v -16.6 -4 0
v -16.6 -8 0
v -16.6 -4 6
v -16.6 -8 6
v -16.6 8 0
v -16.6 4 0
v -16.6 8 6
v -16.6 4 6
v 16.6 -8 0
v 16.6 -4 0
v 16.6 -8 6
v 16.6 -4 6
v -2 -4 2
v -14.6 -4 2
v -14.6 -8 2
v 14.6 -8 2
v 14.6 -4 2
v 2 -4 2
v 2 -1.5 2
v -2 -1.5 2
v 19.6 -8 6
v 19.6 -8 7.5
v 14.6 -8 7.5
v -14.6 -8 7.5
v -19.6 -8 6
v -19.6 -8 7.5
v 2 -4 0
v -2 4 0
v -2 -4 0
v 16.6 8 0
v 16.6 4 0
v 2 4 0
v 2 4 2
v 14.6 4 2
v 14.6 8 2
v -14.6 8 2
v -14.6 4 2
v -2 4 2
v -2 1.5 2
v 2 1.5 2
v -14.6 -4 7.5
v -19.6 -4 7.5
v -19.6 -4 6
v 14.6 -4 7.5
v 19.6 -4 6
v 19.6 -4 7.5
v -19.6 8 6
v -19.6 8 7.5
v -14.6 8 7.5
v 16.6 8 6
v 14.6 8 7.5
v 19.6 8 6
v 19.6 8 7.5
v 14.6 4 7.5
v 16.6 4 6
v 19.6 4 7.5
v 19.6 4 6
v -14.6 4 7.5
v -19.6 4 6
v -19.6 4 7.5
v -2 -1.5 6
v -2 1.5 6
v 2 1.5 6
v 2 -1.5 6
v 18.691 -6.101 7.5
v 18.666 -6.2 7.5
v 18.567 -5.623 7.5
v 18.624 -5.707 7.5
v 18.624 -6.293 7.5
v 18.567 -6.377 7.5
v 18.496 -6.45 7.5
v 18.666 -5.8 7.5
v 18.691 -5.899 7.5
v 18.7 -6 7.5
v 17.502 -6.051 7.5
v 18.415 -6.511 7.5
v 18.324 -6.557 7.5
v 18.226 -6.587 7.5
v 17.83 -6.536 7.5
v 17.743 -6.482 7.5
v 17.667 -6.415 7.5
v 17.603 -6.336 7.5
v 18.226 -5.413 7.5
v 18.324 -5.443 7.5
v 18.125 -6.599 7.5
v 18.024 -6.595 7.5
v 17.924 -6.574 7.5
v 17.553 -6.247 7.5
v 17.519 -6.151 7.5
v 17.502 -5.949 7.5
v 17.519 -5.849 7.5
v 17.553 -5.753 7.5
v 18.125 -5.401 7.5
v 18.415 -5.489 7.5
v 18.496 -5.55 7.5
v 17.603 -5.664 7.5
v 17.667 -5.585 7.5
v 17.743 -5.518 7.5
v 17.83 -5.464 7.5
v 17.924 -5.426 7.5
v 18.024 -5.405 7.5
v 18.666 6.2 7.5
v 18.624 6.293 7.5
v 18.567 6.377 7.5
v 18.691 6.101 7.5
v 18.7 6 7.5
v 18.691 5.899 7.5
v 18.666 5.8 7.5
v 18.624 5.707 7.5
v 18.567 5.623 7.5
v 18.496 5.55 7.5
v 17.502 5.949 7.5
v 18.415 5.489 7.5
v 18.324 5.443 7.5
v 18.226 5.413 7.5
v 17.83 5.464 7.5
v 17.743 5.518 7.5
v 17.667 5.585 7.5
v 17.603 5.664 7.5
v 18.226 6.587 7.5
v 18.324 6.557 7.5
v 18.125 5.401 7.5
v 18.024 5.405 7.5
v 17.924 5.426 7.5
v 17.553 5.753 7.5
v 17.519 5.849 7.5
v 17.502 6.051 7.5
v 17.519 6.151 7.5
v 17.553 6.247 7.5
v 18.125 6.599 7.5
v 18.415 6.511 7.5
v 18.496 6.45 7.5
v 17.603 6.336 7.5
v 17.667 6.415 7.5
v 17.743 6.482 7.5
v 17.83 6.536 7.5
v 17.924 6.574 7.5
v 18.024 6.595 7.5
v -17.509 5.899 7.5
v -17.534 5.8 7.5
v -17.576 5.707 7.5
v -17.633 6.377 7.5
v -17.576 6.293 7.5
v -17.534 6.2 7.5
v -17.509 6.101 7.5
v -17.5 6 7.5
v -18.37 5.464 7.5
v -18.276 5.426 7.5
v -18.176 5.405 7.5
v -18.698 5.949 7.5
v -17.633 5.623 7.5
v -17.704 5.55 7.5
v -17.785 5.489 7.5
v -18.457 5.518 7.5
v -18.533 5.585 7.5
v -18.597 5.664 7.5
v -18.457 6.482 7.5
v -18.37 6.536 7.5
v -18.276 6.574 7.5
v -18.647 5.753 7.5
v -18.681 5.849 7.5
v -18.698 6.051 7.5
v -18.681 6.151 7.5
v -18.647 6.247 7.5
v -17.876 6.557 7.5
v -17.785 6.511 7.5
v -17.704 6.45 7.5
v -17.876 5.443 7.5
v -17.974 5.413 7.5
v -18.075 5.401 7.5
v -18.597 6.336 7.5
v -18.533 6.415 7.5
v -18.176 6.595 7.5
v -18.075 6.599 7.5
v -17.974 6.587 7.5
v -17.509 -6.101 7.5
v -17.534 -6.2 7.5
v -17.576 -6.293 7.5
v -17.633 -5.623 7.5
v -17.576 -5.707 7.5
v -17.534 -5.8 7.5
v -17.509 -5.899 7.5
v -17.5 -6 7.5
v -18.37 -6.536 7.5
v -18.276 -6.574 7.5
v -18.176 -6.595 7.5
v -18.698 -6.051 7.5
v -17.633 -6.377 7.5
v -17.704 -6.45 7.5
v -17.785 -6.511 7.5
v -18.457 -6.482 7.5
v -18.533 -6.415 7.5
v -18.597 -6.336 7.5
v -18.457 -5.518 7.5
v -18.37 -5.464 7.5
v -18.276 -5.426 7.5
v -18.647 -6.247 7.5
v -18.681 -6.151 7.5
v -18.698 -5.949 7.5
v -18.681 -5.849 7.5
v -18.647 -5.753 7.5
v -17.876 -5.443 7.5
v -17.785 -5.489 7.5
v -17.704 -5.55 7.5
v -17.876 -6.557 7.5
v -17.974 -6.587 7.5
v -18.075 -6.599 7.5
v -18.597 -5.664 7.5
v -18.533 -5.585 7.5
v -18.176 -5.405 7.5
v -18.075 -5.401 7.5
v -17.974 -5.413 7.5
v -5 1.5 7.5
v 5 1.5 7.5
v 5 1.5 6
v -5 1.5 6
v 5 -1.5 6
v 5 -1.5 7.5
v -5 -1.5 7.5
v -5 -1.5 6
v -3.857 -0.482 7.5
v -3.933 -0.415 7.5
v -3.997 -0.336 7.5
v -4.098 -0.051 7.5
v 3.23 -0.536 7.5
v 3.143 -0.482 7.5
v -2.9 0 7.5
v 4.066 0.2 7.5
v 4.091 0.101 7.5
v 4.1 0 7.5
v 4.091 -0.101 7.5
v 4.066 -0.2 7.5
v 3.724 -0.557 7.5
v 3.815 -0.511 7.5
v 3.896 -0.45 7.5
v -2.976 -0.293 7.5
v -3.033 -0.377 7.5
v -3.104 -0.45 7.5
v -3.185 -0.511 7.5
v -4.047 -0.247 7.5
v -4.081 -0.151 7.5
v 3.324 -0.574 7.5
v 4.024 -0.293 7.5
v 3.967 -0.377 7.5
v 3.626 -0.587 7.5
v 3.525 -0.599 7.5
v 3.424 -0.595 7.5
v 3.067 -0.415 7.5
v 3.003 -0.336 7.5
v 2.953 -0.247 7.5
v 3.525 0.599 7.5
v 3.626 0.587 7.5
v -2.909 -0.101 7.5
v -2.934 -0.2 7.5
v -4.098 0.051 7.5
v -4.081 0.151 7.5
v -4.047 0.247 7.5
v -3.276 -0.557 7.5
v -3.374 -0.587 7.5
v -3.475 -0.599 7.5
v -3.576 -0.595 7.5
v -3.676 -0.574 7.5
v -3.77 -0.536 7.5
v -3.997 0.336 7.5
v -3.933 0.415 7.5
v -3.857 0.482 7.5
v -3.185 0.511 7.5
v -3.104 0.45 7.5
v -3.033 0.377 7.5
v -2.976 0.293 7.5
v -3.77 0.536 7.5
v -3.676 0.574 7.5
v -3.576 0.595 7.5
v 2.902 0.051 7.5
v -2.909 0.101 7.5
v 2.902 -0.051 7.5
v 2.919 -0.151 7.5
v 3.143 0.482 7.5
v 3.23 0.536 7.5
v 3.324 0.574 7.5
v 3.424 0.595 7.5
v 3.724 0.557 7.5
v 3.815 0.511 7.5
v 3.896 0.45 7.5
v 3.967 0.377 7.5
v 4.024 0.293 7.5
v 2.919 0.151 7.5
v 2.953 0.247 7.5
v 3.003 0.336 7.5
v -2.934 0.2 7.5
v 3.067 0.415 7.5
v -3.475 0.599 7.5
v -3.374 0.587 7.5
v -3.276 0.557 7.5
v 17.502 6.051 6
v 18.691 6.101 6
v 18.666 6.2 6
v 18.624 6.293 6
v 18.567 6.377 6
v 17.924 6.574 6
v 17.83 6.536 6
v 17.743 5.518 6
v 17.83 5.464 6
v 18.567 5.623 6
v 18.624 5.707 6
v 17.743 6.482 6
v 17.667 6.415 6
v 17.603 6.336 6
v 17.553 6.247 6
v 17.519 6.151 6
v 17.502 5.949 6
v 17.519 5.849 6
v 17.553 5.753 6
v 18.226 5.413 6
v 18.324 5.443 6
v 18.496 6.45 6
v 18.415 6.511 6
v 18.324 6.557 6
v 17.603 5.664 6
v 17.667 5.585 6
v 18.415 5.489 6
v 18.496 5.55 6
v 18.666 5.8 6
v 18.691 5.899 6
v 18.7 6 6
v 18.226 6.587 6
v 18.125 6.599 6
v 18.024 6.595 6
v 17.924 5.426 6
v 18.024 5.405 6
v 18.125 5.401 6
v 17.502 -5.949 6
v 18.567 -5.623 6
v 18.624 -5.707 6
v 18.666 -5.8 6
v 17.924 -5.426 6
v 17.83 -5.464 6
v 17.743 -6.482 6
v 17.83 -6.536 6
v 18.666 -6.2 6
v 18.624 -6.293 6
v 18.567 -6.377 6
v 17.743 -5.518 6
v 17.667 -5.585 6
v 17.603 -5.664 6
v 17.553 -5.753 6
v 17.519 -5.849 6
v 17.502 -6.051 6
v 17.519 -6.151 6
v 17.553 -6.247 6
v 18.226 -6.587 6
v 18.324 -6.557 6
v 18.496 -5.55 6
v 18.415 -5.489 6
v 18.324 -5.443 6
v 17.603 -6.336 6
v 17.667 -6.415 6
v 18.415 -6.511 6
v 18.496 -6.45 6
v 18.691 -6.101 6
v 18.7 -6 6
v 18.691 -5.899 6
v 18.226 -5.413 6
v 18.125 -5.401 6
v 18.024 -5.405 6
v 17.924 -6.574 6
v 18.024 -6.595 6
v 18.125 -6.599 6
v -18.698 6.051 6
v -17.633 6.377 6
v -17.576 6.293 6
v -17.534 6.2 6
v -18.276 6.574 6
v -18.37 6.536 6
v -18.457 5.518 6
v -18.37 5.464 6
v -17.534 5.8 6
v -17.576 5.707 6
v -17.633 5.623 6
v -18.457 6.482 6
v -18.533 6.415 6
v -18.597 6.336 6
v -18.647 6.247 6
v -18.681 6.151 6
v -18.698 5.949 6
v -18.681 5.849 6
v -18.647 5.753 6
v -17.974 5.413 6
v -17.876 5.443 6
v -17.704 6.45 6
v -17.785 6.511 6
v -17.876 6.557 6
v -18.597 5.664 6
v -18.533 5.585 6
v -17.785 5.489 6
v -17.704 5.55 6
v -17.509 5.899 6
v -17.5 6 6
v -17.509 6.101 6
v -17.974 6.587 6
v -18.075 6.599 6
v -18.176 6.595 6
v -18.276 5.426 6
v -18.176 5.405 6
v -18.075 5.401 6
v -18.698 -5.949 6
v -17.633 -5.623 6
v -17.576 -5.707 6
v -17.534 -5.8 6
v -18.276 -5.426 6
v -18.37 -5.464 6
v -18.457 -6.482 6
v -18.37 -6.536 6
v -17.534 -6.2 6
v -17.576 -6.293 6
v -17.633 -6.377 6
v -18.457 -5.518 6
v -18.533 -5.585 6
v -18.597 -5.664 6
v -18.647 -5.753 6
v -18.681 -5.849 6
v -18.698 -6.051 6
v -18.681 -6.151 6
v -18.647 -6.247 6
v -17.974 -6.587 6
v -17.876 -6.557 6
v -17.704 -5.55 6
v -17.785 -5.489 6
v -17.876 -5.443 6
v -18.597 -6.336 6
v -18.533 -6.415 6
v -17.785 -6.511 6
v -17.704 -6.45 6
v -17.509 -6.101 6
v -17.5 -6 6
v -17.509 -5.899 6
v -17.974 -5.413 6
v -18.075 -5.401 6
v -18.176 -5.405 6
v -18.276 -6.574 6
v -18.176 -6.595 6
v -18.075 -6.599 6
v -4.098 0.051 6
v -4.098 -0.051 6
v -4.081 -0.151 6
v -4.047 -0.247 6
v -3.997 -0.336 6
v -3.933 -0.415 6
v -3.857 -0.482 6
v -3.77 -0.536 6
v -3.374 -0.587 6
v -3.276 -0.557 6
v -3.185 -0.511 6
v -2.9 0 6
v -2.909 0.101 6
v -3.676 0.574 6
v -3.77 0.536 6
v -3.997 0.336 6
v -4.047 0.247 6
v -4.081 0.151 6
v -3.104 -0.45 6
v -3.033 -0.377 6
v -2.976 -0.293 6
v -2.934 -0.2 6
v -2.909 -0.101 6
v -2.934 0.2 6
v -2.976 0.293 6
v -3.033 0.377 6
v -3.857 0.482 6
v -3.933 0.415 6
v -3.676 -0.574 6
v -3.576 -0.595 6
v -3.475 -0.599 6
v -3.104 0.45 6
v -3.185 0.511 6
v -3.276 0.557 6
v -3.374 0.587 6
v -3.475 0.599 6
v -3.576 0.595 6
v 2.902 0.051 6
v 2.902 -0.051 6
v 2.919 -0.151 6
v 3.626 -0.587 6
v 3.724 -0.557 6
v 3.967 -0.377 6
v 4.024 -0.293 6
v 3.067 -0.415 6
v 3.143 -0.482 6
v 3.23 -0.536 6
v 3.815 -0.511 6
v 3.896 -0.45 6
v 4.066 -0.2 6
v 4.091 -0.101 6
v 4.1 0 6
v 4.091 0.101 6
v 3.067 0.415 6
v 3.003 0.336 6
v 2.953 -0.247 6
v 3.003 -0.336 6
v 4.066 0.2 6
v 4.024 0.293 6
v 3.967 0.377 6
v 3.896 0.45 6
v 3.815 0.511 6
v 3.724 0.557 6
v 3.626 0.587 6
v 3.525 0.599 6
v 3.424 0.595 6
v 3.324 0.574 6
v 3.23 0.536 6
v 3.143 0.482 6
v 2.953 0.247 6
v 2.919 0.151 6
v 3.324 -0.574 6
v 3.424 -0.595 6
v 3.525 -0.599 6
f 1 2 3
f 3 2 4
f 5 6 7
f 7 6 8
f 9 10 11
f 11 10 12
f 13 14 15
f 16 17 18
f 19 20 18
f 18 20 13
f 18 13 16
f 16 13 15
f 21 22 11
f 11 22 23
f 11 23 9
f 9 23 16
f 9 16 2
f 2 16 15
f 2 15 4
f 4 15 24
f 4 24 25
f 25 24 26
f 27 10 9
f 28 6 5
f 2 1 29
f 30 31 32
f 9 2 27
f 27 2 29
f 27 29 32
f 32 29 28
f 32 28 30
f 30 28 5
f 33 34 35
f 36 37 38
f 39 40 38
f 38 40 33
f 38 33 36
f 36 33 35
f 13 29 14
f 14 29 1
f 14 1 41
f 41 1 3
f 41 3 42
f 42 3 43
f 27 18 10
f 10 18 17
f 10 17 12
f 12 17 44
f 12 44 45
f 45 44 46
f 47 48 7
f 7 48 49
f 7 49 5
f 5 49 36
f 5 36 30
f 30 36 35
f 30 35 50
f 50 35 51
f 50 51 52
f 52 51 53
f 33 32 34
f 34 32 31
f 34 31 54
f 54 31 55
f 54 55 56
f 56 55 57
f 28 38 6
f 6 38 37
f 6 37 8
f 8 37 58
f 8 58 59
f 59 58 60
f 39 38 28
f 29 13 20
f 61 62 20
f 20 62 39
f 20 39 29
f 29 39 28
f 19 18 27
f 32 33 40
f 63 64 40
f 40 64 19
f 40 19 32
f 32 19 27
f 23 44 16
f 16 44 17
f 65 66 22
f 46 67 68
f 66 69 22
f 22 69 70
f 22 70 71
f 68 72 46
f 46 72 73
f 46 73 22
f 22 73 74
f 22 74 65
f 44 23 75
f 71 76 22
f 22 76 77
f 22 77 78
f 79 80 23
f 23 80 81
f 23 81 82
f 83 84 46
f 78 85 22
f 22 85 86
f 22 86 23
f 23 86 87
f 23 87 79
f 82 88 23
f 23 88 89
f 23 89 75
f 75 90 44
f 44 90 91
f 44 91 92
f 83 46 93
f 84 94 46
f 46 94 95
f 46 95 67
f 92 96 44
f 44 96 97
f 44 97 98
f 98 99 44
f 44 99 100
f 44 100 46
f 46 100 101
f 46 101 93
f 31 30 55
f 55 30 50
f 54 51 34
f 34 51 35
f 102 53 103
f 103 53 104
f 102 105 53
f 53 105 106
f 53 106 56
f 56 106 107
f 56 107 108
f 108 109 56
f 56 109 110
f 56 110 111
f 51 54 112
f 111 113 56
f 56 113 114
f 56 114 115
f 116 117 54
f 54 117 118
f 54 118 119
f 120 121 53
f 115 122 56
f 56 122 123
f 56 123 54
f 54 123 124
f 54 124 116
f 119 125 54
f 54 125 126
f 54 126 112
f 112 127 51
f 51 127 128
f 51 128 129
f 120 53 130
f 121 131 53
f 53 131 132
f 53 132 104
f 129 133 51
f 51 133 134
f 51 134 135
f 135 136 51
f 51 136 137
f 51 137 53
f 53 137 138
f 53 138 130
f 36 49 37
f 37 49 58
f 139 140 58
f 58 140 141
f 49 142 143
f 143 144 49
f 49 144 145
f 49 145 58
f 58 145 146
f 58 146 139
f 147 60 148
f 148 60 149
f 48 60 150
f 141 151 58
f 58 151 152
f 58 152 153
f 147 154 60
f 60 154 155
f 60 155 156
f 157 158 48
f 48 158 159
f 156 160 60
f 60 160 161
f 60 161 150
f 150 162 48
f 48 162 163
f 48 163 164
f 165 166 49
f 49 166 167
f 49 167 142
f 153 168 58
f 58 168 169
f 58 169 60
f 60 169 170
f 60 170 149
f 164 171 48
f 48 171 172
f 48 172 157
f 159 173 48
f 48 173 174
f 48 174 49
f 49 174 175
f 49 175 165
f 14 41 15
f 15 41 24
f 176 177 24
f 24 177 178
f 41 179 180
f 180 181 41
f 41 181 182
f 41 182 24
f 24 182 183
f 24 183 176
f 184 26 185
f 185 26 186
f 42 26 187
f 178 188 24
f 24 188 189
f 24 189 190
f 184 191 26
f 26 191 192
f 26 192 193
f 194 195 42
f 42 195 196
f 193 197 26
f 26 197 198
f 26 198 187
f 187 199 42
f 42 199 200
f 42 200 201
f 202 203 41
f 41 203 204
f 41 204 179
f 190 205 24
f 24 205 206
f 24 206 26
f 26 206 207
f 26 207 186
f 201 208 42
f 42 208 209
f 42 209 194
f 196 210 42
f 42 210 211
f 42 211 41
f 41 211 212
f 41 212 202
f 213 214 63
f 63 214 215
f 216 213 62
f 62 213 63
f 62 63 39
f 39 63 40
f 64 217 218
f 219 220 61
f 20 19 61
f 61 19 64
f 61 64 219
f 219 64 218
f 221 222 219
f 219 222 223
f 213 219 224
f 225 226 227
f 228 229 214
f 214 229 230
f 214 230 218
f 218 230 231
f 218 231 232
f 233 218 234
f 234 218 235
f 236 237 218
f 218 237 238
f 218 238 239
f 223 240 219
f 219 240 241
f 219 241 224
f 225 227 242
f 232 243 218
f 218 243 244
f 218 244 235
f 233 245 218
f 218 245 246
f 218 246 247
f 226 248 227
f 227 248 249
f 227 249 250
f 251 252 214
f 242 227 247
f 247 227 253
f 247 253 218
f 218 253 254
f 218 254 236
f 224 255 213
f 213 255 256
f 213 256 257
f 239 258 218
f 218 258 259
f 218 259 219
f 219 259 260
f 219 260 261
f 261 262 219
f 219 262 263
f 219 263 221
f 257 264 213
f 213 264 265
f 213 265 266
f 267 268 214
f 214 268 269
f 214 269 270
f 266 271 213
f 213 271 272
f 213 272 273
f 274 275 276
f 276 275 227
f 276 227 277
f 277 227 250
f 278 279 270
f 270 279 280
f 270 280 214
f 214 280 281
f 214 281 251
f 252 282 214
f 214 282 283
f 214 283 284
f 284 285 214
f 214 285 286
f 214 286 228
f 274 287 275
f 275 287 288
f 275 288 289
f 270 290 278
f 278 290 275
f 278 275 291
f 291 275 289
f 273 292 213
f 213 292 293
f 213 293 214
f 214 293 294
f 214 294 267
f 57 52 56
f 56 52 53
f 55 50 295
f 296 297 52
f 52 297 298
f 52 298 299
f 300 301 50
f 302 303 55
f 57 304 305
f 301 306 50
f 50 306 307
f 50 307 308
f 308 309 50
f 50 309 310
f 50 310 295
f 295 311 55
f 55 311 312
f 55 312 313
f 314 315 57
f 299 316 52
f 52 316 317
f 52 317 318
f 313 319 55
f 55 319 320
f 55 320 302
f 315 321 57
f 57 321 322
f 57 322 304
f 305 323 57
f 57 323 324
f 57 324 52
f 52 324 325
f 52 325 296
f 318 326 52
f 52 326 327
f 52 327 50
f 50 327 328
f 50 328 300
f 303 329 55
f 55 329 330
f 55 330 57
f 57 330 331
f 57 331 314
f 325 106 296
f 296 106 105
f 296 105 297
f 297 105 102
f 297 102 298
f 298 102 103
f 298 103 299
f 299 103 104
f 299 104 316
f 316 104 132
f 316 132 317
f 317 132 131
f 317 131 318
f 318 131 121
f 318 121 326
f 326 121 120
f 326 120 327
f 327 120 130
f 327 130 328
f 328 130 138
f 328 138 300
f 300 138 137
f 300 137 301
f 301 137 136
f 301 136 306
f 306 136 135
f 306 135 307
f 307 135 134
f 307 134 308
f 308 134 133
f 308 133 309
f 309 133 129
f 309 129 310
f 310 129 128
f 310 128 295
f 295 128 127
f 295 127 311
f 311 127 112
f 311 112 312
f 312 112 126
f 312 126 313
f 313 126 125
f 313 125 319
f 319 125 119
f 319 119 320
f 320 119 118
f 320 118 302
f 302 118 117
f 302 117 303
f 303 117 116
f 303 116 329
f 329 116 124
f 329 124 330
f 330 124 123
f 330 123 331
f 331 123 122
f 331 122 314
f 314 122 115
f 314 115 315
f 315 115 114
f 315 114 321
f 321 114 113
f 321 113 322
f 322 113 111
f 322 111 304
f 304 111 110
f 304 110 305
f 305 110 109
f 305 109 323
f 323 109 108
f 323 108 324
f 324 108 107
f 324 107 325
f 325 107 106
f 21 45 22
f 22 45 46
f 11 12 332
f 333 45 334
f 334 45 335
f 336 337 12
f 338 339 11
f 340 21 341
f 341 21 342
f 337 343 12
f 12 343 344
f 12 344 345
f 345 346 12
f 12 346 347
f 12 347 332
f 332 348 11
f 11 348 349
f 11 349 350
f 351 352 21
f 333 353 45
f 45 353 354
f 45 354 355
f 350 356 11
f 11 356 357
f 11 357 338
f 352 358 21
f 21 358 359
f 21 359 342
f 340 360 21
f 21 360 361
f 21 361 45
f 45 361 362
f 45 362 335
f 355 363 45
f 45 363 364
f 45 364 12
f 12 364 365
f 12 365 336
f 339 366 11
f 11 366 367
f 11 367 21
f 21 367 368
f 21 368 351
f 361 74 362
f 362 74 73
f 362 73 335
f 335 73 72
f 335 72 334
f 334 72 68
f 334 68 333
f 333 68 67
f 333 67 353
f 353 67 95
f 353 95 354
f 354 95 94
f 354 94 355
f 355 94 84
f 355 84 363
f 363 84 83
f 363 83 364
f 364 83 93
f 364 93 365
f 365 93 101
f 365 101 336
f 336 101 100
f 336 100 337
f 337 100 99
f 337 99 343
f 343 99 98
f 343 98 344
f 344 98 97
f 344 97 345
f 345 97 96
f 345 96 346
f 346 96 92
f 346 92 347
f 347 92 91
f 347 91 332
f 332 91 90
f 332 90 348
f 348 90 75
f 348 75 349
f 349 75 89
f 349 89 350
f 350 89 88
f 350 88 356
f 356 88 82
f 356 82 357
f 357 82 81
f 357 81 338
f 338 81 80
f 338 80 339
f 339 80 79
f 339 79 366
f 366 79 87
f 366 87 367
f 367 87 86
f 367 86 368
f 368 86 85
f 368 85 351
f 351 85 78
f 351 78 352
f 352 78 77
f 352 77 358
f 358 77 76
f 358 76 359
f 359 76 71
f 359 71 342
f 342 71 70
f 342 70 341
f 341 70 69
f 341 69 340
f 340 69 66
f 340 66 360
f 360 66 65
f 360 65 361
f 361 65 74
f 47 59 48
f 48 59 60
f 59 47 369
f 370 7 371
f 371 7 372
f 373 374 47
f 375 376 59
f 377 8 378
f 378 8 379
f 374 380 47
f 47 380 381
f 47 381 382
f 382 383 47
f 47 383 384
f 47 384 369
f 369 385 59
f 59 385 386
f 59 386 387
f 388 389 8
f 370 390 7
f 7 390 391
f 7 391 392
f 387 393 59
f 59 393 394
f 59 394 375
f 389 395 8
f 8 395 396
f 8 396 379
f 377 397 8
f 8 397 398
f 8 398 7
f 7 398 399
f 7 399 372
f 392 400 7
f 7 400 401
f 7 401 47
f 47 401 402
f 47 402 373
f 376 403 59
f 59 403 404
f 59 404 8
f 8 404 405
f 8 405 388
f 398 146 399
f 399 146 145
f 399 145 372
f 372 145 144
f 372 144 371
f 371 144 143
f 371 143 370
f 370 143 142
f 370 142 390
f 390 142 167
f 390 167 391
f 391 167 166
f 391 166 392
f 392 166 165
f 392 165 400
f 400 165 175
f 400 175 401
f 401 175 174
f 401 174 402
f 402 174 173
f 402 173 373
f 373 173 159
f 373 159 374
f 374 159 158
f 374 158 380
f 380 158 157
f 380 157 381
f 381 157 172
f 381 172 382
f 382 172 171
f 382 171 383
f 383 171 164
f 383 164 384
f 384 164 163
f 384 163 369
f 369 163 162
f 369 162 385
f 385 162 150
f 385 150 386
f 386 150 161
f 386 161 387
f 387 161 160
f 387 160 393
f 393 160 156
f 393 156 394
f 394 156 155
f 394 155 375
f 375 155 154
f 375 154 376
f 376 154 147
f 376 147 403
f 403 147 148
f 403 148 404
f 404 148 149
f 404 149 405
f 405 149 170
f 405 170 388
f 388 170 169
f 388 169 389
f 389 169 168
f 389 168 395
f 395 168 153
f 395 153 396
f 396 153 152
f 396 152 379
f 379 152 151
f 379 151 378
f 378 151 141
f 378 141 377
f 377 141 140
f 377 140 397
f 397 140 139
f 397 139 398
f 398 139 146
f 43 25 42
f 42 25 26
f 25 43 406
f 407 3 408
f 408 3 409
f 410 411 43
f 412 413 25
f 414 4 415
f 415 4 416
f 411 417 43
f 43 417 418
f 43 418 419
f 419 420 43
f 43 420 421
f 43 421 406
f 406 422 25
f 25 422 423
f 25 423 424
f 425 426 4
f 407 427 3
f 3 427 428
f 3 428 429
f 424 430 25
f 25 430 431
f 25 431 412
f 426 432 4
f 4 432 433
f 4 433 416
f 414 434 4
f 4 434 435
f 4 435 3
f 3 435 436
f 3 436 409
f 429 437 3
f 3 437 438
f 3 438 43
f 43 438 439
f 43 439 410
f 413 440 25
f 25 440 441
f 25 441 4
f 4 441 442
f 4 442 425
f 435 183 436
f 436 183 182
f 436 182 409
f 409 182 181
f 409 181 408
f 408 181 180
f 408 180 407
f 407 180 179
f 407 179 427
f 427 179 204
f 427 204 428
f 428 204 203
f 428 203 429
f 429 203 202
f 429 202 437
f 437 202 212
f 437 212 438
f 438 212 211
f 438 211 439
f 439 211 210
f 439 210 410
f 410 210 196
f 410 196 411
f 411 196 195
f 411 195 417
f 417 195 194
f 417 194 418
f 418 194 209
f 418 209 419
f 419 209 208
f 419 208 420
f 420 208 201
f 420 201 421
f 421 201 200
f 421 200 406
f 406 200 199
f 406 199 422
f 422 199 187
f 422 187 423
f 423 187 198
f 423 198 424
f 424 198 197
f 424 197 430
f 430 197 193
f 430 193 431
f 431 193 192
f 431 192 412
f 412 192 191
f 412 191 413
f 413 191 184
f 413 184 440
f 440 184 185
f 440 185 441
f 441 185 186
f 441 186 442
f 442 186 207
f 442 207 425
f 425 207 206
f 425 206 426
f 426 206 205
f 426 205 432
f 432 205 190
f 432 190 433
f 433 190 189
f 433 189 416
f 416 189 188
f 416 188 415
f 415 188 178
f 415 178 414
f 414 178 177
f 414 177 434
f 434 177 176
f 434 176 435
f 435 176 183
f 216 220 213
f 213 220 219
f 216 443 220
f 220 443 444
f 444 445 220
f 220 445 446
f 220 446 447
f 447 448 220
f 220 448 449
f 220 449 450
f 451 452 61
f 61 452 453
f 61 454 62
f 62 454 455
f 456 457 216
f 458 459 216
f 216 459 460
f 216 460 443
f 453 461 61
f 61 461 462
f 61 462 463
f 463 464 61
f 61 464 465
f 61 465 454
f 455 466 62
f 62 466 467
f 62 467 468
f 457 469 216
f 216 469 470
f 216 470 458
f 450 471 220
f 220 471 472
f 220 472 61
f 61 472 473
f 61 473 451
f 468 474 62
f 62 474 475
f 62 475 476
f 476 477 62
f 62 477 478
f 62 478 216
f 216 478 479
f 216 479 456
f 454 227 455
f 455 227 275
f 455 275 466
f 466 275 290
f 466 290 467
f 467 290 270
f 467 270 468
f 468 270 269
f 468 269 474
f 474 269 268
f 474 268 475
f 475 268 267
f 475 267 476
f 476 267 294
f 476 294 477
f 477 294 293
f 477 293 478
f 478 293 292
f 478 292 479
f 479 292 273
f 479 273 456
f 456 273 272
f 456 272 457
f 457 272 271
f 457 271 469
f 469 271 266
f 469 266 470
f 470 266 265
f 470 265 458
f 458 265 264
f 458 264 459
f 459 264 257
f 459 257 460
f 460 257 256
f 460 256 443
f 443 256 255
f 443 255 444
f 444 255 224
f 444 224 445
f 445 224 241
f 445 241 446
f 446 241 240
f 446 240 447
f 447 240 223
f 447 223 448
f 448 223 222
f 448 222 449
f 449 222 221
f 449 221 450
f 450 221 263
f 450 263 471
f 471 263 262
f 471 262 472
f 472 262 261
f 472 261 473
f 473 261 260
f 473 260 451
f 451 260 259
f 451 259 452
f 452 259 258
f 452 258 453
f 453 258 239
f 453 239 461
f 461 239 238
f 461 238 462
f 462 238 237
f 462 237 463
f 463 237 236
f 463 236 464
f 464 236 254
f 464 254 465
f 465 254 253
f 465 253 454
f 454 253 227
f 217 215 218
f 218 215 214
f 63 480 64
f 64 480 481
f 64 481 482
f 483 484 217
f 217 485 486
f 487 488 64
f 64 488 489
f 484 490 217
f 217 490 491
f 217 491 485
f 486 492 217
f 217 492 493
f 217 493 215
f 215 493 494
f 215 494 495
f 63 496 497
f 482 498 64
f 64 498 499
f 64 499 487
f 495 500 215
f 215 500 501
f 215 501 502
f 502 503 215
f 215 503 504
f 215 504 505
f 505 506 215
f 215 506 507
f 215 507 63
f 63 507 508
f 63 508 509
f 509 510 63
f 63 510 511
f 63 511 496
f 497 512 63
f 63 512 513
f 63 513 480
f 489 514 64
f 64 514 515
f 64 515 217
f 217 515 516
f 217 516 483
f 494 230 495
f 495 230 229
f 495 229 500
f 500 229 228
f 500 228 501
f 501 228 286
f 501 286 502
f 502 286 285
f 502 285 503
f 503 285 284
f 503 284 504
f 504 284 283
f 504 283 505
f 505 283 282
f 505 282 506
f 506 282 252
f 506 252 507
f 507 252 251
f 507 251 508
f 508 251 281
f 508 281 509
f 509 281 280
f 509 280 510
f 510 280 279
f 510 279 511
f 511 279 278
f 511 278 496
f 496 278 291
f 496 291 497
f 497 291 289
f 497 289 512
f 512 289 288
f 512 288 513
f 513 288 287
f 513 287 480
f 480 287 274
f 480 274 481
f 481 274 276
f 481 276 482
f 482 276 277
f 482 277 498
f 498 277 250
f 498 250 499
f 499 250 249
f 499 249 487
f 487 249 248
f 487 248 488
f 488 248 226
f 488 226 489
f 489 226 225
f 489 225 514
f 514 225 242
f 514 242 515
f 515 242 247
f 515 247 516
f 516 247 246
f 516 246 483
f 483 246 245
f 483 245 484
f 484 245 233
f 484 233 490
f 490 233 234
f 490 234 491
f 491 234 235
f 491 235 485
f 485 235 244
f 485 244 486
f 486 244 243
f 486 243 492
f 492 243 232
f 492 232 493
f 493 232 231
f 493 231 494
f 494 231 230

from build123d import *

# Parameters (mm, degrees)
EXTRUDE_1_DEPTH = 2
SKETCH_1_6_W    = 2
SKETCH_1_6_H    = 4
SKETCH_1_6_W_2  = 4
SKETCH_1_6_H_2  = 1.5
EXTRUDE_2_DEPTH = 7.5
EXTRUDE_START   = 7.5
SKETCH_1_7_W    = 3
SKETCH_1_7_H    = 4
SKETCH_1_7_R    = 0.6
EXTRUDE_3_DEPTH = 1.5


with BuildPart() as part:
    # 草图1 → 凸台-拉伸1 (new body)
    with BuildSketch(Plane.XY):
        Polygon((-2, 4), (-2, -4), (-14.6, -4), (-14.6, -8), (14.6, -8), (14.6, -4), (2, -4), (2, 4), (14.6, 4), (14.6, 8), (-14.6, 8), (-14.6, 4), align=None)
    extrude(amount=EXTRUDE_1_DEPTH)

    # 草图1<6> → 凸台-拉伸2 (add)
    with BuildSketch(Plane.XY):
        with Locations((15.6, -6)):
            Rectangle(SKETCH_1_6_W, SKETCH_1_6_H)
        with Locations((15.6, 6)):
            Rectangle(SKETCH_1_6_W, SKETCH_1_6_H)
        with Locations((-15.6, 6)):
            Rectangle(SKETCH_1_6_W, SKETCH_1_6_H)
        with Locations((-15.6, -6)):
            Rectangle(SKETCH_1_6_W, SKETCH_1_6_H)
        with Locations((0, 0.75)):
            Rectangle(SKETCH_1_6_W_2, SKETCH_1_6_H_2)
        with Locations((0, -0.75)):
            Rectangle(SKETCH_1_6_W_2, SKETCH_1_6_H_2)
    extrude(amount=EXTRUDE_2_DEPTH)

    # 草图1<7> → 凸台-拉伸3 (add)
    # profile 1 of 6: a face of its own
    with BuildSketch(Plane.XY.offset(EXTRUDE_START)):
        with Locations((18.1, 6)):
            Rectangle(SKETCH_1_7_W, SKETCH_1_7_H)
        with Locations((18.1, 6)):
            Circle(SKETCH_1_7_R, mode=Mode.SUBTRACT)
    # profile 2 of 6: a face of its own
    with BuildSketch(Plane.XY.offset(EXTRUDE_START)):
        with Locations((18.1, -6)):
            Rectangle(SKETCH_1_7_W, SKETCH_1_7_H)
        with Locations((18.1, -6)):
            Circle(SKETCH_1_7_R, mode=Mode.SUBTRACT)
    # profile 3 of 6: a face of its own
    with BuildSketch(Plane.XY.offset(EXTRUDE_START)):
        with Locations((-18.1, 6)):
            Rectangle(SKETCH_1_7_W, SKETCH_1_7_H)
        with Locations((-18.1, 6)):
            Circle(SKETCH_1_7_R, mode=Mode.SUBTRACT)
    # profile 4 of 6: a face of its own
    with BuildSketch(Plane.XY.offset(EXTRUDE_START)):
        with Locations((-18.1, -6)):
            Rectangle(SKETCH_1_7_W, SKETCH_1_7_H)
        with Locations((-18.1, -6)):
            Circle(SKETCH_1_7_R, mode=Mode.SUBTRACT)
    # profile 5 of 6: a face of its own
    with BuildSketch(Plane.XY.offset(EXTRUDE_START)):
        Polygon((-2, -1.5), (-2, 0), (-2, 1.5), (-5, 1.5), (-5, -1.5), align=None)
        with Locations((-3.5, 0)):
            Circle(SKETCH_1_7_R, mode=Mode.SUBTRACT)
    # profile 6 of 6: a face of its own
    with BuildSketch(Plane.XY.offset(EXTRUDE_START)):
        Polygon((2, 1.5), (2, 0), (2, -1.5), (5, -1.5), (5, 1.5), align=None)
        with Locations((3.5, 0)):
            Circle(SKETCH_1_7_R, mode=Mode.SUBTRACT)
    extrude(amount=-EXTRUDE_3_DEPTH)


solid = part.part
